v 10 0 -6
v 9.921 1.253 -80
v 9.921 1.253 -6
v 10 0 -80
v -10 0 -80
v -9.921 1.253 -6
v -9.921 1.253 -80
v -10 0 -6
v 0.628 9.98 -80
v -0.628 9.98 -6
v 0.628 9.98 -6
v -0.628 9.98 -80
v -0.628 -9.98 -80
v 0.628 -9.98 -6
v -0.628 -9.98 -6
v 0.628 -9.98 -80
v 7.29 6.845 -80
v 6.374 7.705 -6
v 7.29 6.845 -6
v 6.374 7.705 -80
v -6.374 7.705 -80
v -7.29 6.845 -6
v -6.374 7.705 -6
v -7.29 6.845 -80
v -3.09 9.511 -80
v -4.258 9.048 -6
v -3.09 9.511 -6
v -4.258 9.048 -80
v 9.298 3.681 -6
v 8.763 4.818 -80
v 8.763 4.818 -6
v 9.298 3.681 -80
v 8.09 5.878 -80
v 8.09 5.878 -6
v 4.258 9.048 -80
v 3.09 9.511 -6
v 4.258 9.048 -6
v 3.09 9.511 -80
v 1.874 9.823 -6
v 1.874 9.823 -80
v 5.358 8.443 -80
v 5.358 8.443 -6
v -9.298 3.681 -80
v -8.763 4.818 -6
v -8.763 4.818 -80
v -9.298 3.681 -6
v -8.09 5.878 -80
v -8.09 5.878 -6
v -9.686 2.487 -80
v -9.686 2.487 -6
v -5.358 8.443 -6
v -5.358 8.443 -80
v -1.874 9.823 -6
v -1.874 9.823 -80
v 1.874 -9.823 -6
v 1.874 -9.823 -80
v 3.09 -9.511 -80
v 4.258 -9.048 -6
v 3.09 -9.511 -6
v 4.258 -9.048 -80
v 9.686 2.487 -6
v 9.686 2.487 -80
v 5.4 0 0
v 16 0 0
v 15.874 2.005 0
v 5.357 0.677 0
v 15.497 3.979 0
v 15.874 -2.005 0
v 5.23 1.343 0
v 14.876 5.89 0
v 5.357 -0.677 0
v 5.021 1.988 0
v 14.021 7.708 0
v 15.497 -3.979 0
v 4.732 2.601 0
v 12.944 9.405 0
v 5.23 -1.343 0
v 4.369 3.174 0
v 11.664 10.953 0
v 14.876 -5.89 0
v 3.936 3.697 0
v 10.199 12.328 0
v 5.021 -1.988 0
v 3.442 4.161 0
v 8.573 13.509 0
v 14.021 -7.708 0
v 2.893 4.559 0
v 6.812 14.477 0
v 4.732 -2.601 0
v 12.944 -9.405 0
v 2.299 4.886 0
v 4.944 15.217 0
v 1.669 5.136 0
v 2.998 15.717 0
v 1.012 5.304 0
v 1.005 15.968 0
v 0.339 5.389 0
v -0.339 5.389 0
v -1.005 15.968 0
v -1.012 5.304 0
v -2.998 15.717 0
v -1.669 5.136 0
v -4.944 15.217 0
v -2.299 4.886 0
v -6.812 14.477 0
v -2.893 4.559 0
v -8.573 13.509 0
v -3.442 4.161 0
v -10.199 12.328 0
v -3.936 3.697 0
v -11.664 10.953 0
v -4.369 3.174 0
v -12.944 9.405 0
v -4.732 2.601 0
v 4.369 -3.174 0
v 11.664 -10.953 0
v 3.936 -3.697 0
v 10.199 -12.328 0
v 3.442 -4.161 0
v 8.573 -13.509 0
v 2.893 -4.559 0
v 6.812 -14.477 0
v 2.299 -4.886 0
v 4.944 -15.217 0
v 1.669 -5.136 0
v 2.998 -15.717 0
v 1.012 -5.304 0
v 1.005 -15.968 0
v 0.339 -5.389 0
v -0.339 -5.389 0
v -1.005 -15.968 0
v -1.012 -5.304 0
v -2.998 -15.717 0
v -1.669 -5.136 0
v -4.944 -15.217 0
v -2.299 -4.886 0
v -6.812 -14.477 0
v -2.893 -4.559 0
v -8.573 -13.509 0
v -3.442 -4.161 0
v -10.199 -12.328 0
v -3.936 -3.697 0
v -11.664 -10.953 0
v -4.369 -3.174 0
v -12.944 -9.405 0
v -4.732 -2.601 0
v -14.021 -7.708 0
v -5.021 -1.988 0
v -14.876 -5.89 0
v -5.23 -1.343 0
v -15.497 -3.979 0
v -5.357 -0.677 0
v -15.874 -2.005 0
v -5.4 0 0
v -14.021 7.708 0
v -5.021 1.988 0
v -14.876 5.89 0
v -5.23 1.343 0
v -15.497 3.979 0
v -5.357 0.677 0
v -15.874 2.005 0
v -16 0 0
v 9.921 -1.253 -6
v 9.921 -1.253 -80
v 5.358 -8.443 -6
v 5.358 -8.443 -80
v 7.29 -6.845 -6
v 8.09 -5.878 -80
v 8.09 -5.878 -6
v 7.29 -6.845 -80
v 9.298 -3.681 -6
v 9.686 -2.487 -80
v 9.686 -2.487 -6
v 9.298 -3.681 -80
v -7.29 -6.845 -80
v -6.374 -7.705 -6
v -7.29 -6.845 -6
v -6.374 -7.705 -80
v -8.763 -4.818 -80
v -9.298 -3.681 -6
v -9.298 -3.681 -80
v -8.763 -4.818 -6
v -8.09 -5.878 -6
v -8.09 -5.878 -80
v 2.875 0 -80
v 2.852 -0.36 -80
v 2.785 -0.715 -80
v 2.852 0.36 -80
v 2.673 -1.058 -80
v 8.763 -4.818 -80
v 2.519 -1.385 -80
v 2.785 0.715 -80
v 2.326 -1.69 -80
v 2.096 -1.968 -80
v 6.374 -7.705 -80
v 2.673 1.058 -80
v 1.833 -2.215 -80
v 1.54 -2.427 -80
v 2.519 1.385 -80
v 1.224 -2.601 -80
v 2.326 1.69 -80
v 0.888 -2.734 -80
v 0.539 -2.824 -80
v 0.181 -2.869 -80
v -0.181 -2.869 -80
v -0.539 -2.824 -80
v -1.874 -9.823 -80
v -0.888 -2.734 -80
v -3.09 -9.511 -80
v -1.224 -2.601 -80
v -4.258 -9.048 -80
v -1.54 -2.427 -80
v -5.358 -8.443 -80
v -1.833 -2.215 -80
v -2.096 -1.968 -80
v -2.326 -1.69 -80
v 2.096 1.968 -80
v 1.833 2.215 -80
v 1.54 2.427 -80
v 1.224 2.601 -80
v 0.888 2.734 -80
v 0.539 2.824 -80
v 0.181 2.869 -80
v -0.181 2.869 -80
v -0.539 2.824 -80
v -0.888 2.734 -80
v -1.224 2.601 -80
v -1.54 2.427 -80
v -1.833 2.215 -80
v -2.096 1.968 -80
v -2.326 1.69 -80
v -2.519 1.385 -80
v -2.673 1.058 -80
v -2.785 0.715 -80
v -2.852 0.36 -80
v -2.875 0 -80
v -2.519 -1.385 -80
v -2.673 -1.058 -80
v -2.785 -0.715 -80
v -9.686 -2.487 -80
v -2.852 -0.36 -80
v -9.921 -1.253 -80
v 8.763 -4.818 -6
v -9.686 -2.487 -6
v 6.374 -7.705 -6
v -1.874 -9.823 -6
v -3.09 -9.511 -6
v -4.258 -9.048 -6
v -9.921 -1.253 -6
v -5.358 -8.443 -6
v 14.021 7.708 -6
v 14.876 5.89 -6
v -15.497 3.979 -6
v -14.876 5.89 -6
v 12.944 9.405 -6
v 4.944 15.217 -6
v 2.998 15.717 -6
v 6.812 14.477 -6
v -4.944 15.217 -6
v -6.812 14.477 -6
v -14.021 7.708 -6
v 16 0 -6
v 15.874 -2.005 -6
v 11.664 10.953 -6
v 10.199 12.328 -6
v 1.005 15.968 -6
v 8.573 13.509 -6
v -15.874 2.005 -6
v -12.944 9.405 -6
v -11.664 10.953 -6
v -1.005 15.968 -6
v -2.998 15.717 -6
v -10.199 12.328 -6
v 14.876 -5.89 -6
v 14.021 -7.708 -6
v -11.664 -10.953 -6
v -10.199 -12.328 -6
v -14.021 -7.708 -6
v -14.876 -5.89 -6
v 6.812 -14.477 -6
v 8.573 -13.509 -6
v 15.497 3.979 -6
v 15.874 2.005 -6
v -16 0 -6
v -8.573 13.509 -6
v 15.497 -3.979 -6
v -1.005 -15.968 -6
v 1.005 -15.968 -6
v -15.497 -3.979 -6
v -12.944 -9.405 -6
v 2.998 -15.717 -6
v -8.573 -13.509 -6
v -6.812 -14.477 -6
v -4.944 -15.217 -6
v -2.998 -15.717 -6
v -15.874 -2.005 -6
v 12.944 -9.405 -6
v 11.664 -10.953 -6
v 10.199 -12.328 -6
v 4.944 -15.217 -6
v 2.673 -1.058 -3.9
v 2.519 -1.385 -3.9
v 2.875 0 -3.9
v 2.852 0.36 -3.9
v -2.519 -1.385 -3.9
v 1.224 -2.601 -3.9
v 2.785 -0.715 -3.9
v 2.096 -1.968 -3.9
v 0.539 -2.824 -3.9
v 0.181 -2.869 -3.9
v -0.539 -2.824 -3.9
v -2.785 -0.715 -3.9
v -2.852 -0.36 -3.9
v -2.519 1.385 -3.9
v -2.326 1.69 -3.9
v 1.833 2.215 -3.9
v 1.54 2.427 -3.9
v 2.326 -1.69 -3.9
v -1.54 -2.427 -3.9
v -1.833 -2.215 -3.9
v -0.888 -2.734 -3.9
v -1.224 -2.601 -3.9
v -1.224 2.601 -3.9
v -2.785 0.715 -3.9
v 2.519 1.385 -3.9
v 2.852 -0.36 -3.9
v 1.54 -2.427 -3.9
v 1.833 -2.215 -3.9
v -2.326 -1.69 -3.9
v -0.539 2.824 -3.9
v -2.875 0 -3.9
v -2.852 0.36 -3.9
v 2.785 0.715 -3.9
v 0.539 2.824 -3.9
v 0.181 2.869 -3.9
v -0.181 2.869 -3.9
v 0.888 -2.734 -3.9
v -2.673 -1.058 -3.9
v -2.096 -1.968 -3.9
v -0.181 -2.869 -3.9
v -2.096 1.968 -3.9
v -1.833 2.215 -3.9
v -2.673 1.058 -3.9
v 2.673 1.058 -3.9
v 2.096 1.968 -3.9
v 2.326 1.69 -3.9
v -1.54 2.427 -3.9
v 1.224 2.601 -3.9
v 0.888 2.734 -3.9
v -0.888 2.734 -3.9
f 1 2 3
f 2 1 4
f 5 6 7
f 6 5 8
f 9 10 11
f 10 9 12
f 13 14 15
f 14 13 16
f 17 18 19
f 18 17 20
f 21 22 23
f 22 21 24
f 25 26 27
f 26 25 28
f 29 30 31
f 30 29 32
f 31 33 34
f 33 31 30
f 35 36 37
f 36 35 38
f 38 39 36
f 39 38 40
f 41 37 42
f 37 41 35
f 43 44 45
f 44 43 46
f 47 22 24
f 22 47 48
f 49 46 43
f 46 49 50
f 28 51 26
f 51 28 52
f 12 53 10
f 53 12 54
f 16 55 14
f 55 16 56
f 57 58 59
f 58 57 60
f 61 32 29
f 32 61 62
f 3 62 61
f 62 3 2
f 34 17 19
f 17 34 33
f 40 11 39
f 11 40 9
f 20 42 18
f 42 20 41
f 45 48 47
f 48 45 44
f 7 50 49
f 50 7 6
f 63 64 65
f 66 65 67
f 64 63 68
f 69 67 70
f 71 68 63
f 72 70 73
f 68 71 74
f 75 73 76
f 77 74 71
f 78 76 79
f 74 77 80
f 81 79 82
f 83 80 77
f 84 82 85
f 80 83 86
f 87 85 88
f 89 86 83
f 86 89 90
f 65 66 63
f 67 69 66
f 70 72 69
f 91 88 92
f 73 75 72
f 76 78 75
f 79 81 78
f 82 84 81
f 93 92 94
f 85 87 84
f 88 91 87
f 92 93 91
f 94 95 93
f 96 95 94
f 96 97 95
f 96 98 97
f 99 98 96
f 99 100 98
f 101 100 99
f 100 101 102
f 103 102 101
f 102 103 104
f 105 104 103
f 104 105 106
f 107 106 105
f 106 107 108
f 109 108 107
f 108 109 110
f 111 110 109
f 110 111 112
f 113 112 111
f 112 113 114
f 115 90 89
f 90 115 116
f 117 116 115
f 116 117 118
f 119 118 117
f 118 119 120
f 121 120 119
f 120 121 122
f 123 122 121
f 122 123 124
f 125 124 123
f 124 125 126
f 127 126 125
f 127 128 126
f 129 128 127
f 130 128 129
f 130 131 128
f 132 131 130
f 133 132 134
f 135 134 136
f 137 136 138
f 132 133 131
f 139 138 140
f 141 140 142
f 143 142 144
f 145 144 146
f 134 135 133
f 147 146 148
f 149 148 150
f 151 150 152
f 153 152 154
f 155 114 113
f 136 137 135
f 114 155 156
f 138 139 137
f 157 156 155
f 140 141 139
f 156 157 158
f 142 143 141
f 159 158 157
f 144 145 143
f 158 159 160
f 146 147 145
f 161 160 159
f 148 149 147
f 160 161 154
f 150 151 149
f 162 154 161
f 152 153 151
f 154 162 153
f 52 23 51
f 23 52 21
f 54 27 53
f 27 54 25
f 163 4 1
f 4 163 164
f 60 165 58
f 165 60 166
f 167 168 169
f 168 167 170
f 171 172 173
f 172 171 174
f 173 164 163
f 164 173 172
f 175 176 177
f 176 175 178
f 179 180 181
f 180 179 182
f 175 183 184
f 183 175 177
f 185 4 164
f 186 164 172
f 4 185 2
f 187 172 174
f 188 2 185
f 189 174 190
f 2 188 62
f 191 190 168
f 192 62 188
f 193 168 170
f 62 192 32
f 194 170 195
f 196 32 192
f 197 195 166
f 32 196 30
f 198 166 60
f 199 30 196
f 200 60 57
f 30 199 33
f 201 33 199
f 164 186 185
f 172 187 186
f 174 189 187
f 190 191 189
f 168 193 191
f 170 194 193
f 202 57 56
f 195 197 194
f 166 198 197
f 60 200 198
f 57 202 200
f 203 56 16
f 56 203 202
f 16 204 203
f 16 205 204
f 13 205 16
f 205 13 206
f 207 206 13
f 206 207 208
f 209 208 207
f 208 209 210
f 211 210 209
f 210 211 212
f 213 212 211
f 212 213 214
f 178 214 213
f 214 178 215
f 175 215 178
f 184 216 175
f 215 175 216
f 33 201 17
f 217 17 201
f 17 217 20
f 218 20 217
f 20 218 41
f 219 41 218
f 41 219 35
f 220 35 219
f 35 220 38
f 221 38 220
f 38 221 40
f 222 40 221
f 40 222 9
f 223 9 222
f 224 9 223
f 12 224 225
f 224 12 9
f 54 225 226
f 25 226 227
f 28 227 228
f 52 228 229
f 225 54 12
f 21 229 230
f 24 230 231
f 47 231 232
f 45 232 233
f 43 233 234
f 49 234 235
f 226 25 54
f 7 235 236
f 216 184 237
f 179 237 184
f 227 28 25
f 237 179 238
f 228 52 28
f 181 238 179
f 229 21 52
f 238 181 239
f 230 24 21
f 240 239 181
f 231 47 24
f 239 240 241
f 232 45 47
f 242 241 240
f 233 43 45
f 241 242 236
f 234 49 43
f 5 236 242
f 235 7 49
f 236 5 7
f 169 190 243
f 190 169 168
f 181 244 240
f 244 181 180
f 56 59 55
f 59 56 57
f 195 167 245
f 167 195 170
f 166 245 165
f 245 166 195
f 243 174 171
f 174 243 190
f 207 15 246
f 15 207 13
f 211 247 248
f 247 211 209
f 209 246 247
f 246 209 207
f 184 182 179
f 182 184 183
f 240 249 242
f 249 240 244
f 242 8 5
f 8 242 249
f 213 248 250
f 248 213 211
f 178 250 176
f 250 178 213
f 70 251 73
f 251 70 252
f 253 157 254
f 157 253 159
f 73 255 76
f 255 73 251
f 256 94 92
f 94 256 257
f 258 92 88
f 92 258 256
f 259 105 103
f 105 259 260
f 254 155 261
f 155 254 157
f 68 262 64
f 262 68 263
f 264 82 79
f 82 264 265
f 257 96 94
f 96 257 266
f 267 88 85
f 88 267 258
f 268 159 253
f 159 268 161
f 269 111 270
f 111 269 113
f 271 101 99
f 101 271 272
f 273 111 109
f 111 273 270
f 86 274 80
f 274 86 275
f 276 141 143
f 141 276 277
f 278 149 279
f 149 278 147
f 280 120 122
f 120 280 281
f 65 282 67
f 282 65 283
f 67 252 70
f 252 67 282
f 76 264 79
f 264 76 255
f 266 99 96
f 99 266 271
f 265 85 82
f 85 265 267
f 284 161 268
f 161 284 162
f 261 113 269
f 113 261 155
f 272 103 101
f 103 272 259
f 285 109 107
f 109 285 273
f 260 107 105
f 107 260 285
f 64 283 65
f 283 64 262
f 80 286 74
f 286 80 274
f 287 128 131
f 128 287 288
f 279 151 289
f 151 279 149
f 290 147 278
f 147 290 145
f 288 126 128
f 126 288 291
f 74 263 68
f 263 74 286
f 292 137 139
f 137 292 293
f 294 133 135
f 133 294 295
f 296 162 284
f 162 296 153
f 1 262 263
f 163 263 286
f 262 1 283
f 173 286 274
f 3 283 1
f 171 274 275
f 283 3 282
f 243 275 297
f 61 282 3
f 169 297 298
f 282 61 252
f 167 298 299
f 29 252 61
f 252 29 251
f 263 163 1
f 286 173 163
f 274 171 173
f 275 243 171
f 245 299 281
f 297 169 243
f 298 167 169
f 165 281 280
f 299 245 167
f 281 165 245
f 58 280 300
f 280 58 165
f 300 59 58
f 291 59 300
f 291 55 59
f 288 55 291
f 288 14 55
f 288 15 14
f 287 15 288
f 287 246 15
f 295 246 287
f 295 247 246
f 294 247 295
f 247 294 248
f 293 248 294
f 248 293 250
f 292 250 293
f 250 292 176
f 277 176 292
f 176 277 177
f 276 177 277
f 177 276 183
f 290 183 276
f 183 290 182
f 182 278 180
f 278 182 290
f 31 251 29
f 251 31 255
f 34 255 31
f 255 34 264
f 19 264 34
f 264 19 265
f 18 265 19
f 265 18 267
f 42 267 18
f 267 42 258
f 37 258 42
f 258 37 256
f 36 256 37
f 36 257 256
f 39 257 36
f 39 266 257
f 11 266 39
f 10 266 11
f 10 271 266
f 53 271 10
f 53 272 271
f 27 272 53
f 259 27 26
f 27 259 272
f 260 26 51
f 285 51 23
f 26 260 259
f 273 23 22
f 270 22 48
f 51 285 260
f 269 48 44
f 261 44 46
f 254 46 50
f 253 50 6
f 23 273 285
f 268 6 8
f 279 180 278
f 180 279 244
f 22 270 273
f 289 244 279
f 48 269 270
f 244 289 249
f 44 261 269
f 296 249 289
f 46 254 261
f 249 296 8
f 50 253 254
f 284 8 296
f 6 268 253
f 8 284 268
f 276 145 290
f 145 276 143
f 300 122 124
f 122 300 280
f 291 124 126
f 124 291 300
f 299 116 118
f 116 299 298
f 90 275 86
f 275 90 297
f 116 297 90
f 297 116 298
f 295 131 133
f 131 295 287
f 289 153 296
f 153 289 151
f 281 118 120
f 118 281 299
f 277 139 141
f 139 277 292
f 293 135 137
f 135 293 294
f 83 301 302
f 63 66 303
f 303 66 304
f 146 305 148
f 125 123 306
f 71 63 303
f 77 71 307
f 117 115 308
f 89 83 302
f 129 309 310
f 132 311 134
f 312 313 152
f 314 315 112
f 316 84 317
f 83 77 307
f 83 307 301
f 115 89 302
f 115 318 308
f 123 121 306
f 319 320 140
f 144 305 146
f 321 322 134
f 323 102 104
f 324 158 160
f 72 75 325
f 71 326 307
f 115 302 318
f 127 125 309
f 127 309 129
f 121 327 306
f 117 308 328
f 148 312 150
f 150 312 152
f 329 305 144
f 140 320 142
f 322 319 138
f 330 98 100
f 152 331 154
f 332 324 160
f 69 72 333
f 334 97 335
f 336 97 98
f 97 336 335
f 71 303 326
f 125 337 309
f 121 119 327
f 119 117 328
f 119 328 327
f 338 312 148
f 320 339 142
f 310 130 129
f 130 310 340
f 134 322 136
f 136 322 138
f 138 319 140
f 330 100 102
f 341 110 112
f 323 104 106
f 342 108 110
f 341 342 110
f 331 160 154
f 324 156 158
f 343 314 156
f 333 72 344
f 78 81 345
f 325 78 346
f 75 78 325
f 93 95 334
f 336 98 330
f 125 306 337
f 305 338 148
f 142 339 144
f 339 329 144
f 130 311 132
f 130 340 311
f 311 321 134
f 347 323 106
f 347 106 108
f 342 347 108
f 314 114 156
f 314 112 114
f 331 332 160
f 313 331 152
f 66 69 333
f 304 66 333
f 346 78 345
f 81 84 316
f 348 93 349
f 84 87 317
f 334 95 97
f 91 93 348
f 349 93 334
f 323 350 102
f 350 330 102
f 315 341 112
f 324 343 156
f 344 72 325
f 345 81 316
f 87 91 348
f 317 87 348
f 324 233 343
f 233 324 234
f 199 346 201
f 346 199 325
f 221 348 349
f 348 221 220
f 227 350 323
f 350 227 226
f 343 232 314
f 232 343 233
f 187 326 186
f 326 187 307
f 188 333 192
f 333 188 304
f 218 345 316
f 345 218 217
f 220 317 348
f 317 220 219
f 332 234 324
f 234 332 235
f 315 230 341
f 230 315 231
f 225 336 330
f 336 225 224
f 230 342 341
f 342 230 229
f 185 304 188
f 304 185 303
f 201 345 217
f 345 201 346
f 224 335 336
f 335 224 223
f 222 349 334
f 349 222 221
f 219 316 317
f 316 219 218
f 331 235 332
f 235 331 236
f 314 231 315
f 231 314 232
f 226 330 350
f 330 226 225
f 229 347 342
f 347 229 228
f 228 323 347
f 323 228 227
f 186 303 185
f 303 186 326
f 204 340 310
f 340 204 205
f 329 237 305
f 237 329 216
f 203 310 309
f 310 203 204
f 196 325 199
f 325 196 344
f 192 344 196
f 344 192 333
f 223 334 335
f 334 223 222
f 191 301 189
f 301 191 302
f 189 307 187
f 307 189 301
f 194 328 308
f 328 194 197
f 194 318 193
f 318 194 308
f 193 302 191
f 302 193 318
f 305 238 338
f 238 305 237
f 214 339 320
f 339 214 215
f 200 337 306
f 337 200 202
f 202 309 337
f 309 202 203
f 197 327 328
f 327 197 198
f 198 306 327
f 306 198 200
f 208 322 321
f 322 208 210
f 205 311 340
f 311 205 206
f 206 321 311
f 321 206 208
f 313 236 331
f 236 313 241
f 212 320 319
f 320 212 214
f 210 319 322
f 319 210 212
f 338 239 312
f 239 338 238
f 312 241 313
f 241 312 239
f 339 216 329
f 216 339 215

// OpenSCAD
$fn = 50;


difference() {
	union() {
		translate(v = [0, 0, -80.0000000000]) {
			cylinder(h = 80, r = 10.0000000000);
		}
		translate(v = [0, 0, -6.0000000000]) {
			cylinder(h = 6, r = 16.0000000000);
		}
	}
	union() {
		translate(v = [0, 0, 0]) {
			rotate(a = [0, 0, 0]) {
				difference() {
					union() {
						#translate(v = [0, 0, -80.0000000000]) {
							cylinder(h = 80, r = 2.6000000000);
						}
						#translate(v = [0, 0, -3.9000000000]) {
							cylinder(h = 3.9000000000, r1 = 2.8750000000, r2 = 5.4000000000);
						}
						#translate(v = [0, 0, -80.0000000000]) {
							cylinder(h = 80, r = 2.8750000000);
						}
						#translate(v = [0, 0, -80.0000000000]) {
							cylinder(h = 80, r = 2.6000000000);
						}
					}
					union();
				}
			}
		}
	}
}
